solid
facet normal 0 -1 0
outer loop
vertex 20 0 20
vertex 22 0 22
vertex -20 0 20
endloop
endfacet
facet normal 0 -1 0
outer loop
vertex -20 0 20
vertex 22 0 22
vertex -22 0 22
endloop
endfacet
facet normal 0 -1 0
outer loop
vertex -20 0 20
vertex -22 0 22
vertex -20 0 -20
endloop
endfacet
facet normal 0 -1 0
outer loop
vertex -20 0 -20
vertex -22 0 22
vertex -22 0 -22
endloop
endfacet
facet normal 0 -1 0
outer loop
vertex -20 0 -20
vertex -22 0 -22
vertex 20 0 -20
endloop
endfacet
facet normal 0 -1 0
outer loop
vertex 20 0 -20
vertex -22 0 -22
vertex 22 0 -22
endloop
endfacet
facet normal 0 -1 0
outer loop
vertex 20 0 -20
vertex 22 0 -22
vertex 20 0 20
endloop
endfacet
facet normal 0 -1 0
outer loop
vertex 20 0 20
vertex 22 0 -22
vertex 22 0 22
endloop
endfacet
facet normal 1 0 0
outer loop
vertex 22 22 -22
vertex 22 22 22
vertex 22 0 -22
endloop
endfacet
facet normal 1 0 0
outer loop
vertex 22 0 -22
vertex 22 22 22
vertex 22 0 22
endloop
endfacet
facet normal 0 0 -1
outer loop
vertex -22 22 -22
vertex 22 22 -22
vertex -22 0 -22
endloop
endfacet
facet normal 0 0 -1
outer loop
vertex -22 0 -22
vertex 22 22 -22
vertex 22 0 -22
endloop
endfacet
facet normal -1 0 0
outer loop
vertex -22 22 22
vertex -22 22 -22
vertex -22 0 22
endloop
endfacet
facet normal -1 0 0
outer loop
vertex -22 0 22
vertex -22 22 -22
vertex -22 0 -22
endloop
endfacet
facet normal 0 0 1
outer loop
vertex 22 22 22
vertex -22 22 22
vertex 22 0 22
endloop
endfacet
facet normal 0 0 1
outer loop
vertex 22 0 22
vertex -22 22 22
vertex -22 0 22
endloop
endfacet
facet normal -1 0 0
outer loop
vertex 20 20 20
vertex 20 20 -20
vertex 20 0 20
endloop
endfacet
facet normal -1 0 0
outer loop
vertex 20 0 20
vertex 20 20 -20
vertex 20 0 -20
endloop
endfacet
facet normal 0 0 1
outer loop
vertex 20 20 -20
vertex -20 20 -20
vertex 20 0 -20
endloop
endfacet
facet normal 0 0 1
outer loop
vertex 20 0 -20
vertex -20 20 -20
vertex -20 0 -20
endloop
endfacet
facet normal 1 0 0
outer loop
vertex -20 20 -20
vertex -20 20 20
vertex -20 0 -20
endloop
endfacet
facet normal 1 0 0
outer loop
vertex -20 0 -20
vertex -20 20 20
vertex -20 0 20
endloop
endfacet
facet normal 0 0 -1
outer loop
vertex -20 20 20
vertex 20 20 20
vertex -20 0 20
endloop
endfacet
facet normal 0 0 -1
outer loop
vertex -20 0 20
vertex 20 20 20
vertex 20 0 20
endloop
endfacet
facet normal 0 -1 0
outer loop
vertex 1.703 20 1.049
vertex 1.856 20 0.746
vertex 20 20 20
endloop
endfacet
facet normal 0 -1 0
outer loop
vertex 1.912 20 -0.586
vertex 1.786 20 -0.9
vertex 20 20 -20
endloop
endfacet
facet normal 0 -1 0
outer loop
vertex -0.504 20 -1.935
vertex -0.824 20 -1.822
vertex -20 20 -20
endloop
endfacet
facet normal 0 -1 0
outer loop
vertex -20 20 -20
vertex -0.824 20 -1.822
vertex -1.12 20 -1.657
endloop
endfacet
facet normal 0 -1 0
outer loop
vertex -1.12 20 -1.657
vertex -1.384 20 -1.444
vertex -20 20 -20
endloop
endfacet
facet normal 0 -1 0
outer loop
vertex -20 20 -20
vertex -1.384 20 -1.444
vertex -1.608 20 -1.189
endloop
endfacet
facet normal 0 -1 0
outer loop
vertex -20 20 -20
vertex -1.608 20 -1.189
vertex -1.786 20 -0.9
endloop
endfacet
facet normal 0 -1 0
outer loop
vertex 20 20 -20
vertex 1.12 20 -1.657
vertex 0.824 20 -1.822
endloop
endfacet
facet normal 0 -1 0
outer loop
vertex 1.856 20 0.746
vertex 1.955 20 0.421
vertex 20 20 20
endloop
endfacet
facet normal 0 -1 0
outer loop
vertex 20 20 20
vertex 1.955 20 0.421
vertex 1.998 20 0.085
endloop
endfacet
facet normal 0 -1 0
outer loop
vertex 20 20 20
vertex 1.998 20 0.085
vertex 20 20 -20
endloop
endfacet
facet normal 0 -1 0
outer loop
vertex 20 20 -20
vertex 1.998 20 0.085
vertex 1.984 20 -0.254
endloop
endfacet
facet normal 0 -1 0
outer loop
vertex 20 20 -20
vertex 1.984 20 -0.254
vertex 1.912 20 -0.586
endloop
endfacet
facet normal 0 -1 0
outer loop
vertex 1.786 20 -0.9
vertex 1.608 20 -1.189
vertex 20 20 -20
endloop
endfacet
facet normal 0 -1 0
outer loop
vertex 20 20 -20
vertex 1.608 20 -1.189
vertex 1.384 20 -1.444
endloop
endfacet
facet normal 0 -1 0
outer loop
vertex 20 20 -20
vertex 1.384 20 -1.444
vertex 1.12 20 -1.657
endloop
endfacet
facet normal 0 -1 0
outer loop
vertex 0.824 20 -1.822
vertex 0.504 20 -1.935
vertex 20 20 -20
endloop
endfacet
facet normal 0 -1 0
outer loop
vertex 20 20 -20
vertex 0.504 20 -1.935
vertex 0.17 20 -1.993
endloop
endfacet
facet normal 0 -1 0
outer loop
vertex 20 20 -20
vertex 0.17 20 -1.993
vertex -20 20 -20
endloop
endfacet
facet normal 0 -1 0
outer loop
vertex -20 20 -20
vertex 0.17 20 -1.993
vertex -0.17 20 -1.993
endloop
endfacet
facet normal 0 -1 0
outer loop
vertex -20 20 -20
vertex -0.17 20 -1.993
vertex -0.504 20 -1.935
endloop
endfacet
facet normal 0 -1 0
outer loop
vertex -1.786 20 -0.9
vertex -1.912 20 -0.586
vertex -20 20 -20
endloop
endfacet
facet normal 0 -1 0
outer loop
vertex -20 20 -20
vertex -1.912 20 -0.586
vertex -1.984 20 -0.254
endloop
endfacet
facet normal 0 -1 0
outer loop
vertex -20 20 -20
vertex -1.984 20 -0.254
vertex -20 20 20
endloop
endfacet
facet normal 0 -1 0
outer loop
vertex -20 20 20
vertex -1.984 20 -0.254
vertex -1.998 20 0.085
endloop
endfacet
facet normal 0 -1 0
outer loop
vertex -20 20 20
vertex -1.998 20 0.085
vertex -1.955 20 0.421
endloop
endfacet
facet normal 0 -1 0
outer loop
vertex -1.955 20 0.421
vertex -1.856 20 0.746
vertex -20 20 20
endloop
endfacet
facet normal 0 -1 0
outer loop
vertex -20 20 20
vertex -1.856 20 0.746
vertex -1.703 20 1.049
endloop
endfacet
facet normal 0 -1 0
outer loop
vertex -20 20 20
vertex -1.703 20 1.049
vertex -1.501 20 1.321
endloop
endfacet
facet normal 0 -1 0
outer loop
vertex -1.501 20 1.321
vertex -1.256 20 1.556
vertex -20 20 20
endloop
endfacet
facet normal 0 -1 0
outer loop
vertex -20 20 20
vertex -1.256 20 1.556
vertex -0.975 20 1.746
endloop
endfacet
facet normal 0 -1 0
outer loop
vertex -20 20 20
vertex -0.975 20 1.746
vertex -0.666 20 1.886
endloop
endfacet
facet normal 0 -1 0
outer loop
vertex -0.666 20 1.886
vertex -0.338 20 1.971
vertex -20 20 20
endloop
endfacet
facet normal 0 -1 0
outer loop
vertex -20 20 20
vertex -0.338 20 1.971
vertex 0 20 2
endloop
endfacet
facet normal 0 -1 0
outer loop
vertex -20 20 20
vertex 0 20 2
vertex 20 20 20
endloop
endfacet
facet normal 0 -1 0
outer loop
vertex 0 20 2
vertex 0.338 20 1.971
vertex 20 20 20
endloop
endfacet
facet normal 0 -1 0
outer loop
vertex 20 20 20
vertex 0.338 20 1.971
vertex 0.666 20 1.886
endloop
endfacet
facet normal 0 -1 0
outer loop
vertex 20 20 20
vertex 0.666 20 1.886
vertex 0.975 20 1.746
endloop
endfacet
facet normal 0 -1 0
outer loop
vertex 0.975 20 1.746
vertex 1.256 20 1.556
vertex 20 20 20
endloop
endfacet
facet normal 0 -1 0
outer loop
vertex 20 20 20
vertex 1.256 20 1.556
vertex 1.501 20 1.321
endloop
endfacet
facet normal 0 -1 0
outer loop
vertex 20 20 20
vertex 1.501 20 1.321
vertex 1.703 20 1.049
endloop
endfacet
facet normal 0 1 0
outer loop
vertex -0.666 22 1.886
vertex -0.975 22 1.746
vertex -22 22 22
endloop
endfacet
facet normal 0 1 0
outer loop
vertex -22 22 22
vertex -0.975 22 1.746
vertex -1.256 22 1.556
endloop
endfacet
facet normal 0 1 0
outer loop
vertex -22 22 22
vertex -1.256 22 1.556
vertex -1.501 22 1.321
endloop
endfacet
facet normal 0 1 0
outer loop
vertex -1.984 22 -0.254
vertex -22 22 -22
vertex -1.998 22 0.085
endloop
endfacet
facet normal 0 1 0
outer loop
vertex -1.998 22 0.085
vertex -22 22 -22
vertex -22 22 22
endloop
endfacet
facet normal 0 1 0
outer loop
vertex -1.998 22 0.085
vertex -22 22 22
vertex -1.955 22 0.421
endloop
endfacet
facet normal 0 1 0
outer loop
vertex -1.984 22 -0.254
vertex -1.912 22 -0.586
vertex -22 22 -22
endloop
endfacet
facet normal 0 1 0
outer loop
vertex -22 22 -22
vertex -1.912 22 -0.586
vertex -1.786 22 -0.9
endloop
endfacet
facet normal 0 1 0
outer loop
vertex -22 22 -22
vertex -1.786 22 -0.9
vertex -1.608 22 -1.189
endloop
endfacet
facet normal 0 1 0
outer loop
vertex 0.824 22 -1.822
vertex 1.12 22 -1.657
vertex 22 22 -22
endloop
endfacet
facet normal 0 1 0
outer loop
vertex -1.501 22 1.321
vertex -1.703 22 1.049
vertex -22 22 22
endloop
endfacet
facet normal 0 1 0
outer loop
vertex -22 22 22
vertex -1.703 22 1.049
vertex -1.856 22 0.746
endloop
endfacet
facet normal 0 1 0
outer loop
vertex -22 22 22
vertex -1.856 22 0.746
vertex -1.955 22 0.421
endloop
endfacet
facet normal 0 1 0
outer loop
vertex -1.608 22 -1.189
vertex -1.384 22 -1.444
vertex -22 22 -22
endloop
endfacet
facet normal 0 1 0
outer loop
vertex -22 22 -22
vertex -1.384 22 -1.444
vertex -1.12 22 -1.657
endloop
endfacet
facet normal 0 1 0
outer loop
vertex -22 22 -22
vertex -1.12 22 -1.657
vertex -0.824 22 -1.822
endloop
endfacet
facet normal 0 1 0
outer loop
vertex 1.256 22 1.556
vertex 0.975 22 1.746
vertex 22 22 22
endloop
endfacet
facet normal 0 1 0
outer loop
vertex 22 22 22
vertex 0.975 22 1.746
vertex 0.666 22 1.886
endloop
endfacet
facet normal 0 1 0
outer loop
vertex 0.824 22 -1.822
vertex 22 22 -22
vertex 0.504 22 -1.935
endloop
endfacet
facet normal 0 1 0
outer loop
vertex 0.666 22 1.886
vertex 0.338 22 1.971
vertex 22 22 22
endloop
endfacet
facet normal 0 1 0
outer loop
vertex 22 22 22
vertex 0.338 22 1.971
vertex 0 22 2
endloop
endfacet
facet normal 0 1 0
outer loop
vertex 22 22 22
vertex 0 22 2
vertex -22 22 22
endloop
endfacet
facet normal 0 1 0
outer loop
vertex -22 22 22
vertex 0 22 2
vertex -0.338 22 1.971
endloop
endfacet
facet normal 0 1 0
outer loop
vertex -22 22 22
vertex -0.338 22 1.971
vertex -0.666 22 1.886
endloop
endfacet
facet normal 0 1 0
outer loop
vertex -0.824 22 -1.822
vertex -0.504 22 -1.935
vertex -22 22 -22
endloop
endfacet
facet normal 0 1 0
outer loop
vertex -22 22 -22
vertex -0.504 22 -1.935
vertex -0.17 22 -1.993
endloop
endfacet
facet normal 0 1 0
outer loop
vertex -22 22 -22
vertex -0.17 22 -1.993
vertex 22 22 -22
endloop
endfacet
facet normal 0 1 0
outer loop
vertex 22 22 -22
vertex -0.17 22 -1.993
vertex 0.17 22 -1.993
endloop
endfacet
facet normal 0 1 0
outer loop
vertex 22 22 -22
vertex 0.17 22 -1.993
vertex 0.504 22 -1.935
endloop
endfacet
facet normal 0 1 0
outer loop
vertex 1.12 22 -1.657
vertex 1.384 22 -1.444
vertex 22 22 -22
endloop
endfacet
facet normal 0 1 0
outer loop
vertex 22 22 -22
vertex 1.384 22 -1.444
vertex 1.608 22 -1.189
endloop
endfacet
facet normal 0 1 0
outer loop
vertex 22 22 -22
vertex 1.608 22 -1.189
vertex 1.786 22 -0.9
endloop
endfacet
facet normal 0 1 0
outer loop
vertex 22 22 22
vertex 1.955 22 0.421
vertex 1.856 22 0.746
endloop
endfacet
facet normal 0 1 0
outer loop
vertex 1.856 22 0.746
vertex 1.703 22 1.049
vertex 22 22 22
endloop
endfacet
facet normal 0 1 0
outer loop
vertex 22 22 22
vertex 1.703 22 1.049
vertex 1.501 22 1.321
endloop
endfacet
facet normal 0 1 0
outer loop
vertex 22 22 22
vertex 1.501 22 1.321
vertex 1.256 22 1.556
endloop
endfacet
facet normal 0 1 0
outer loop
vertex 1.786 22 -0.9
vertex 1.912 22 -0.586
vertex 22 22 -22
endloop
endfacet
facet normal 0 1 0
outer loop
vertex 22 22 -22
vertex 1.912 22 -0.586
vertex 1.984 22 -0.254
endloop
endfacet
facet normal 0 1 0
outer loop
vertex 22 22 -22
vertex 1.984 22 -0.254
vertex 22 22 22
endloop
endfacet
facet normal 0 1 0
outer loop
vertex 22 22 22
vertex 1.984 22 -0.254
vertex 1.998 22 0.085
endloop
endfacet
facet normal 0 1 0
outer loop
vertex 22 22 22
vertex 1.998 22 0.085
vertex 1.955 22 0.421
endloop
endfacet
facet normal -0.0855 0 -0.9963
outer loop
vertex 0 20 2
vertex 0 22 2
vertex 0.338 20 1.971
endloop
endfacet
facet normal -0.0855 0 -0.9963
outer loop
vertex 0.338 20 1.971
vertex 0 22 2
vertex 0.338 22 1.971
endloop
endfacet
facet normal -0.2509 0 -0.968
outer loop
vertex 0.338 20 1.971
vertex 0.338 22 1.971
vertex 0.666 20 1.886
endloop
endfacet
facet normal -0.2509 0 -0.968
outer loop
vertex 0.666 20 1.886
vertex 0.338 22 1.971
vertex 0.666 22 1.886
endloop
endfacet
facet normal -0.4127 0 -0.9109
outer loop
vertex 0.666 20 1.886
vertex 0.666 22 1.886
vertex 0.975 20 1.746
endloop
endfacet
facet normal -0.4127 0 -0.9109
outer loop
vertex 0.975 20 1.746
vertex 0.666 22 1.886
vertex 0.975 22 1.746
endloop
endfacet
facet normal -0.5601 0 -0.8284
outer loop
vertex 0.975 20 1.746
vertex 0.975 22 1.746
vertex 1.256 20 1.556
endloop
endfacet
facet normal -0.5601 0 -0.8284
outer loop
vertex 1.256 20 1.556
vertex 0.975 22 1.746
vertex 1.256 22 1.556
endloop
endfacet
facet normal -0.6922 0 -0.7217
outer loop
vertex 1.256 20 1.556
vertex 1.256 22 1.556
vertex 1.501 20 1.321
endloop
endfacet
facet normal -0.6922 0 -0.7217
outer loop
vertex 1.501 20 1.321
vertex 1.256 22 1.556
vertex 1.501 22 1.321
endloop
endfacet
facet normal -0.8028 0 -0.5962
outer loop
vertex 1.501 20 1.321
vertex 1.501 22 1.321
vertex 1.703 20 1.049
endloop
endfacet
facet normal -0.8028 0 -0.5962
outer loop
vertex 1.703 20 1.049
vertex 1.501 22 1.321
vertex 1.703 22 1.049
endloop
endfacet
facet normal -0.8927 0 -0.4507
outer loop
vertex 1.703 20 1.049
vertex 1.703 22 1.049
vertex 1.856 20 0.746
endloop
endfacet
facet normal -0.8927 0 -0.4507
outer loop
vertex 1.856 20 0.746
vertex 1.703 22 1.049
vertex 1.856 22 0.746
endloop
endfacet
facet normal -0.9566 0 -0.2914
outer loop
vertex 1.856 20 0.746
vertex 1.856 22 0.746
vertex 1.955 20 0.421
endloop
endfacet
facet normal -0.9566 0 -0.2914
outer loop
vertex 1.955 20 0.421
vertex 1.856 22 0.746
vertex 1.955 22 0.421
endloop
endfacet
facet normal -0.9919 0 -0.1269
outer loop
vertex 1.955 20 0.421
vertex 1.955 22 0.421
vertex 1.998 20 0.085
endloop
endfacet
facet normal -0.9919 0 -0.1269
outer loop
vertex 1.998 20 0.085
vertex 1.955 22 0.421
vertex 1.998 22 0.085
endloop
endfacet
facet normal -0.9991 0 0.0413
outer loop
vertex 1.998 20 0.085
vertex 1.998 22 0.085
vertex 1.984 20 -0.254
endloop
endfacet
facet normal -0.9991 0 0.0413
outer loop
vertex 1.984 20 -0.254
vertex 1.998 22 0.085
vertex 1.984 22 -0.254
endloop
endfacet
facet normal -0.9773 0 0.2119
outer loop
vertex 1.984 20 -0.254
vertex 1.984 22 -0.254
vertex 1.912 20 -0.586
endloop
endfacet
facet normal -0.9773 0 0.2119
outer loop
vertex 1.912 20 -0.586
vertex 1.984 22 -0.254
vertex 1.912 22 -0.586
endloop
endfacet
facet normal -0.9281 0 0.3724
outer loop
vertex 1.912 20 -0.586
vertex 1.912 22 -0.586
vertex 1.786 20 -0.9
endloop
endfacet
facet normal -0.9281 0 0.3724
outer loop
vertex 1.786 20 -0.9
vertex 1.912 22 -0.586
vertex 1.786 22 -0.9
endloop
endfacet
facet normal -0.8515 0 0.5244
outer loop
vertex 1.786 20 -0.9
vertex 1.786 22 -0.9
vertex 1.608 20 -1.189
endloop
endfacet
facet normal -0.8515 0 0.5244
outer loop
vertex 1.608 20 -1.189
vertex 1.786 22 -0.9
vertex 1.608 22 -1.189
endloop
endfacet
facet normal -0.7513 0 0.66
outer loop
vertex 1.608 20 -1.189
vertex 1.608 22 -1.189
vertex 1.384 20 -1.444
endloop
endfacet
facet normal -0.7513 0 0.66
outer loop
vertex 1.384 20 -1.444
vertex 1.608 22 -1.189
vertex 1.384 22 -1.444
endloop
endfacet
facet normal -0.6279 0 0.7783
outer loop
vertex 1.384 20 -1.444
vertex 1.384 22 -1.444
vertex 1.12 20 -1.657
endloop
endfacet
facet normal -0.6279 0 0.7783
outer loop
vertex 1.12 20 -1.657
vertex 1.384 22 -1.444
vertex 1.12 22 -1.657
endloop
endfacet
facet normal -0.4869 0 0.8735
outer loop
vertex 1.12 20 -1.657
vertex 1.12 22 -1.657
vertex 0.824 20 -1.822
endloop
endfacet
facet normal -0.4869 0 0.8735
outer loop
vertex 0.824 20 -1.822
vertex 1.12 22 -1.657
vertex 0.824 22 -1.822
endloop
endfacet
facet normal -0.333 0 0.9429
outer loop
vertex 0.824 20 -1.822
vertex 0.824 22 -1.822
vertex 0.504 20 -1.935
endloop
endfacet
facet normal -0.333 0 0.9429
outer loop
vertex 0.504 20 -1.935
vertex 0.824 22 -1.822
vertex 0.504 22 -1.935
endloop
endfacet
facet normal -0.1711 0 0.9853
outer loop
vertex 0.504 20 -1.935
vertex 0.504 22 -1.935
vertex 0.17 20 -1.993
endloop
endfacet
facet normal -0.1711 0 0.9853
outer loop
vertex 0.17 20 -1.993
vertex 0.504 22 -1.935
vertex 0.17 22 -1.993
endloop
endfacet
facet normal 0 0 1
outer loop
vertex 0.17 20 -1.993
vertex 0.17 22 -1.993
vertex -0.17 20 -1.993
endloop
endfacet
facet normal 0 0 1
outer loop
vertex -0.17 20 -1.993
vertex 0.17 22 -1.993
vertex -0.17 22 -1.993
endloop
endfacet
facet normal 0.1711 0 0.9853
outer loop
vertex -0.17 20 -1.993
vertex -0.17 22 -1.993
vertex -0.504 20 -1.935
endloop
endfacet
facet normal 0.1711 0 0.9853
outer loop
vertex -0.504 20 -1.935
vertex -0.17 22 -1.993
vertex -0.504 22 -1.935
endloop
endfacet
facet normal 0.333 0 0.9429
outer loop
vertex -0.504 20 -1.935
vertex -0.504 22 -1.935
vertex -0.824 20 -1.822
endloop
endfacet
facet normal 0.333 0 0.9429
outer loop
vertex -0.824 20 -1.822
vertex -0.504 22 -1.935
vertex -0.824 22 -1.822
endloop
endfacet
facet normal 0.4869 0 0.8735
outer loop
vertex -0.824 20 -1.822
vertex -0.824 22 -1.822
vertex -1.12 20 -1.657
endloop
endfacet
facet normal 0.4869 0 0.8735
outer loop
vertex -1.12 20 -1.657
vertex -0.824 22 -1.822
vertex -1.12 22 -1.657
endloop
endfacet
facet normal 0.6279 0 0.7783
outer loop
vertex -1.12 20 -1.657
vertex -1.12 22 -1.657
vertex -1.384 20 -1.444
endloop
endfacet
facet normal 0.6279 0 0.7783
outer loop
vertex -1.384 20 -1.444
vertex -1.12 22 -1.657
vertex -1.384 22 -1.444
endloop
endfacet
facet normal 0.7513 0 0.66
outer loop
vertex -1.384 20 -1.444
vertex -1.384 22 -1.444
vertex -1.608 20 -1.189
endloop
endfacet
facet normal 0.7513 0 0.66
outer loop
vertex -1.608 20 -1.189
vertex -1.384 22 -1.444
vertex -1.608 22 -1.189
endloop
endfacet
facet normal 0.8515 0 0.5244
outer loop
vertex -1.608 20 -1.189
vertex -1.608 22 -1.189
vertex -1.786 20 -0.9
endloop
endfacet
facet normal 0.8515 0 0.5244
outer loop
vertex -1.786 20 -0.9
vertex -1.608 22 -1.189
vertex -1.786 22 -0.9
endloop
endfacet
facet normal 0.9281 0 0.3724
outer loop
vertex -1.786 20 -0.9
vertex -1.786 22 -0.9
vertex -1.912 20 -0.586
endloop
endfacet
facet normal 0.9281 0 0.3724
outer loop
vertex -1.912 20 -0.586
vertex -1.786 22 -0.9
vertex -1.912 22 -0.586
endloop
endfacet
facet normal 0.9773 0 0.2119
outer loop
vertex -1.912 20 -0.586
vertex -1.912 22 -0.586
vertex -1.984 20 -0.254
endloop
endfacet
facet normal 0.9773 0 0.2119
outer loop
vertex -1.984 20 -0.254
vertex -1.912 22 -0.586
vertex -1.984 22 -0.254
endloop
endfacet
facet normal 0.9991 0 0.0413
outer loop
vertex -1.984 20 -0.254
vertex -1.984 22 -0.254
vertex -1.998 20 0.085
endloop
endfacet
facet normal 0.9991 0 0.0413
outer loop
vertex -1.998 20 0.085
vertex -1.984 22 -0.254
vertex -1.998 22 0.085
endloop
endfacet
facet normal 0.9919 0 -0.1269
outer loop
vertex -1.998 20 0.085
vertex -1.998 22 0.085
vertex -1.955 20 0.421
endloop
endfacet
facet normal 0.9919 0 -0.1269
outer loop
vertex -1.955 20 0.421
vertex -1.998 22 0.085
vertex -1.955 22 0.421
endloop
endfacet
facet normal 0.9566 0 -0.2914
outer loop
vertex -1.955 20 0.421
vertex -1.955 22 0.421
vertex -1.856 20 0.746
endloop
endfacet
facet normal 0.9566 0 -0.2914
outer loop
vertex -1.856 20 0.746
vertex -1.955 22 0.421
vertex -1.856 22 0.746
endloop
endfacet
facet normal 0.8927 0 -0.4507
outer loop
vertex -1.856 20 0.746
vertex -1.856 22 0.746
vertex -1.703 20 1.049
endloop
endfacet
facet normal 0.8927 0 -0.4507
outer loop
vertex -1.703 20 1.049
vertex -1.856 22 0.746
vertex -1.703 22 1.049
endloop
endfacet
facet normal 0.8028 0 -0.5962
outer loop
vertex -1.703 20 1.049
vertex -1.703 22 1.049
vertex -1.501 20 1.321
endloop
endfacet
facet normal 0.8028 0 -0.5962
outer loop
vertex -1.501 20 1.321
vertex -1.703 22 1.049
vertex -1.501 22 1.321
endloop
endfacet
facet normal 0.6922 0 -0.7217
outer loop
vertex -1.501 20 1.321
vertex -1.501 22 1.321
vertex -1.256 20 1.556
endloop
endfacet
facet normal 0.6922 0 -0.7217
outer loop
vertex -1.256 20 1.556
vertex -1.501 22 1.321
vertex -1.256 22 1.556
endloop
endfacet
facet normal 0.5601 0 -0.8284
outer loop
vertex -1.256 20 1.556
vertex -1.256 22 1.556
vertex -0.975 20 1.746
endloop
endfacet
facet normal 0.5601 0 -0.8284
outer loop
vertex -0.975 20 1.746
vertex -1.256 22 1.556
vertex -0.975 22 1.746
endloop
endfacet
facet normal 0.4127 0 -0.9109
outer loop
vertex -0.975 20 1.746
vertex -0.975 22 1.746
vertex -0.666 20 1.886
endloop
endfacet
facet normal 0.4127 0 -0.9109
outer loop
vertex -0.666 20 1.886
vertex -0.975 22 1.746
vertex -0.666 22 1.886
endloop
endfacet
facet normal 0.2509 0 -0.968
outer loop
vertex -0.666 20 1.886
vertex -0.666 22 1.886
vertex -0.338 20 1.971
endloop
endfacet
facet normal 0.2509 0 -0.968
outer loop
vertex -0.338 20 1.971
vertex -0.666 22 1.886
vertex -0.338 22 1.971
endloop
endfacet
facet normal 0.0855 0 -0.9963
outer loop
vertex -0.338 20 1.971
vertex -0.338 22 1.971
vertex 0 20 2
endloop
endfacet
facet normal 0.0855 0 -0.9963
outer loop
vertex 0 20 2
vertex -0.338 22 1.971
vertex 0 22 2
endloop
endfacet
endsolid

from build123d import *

# Parameters (mm, degrees)
SKETCH_1_W          = 44
SKETCH_1_H          = 44
SKETCH_1_W_2        = 40
SKETCH_1_H_2        = 40
EXTRUDE_1_DEPTH     = 20
SKETCH_2_W          = 44
SKETCH_2_H          = 44
EXTRUDE_1_2_DEPTH   = 2
SKETCH_3_R          = 2
CUT_EXTRUDE_1_DEPTH = 2


with BuildPart() as part:
    # 草图1 → Extrude 1 (new body)
    with BuildSketch(Plane(origin=(0, 0, 0), x_dir=(1, 0, 0), z_dir=(0, 1, 0))):
        Rectangle(SKETCH_1_W, SKETCH_1_H)
        Rectangle(SKETCH_1_W_2, SKETCH_1_H_2, mode=Mode.SUBTRACT)
    extrude(amount=EXTRUDE_1_DEPTH)

    # 草图2 → Extrude 1 2 (add)
    with BuildSketch(Plane(origin=(0, 20, 0), x_dir=(1, 0, 0), z_dir=(0, 1, 0))):
        Rectangle(SKETCH_2_W, SKETCH_2_H)
    extrude(amount=EXTRUDE_1_2_DEPTH)

    # 草图3 → 切除-拉伸1 (cut)
    with BuildSketch(Plane(origin=(0, 22, 0), x_dir=(1, 0, 0), z_dir=(0, 1, 0))):
        with Locations(Location((0, 0, 0), (0, 0, 270))):
            Circle(SKETCH_3_R)
    extrude(amount=-CUT_EXTRUDE_1_DEPTH, mode=Mode.SUBTRACT)


solid = part.part
